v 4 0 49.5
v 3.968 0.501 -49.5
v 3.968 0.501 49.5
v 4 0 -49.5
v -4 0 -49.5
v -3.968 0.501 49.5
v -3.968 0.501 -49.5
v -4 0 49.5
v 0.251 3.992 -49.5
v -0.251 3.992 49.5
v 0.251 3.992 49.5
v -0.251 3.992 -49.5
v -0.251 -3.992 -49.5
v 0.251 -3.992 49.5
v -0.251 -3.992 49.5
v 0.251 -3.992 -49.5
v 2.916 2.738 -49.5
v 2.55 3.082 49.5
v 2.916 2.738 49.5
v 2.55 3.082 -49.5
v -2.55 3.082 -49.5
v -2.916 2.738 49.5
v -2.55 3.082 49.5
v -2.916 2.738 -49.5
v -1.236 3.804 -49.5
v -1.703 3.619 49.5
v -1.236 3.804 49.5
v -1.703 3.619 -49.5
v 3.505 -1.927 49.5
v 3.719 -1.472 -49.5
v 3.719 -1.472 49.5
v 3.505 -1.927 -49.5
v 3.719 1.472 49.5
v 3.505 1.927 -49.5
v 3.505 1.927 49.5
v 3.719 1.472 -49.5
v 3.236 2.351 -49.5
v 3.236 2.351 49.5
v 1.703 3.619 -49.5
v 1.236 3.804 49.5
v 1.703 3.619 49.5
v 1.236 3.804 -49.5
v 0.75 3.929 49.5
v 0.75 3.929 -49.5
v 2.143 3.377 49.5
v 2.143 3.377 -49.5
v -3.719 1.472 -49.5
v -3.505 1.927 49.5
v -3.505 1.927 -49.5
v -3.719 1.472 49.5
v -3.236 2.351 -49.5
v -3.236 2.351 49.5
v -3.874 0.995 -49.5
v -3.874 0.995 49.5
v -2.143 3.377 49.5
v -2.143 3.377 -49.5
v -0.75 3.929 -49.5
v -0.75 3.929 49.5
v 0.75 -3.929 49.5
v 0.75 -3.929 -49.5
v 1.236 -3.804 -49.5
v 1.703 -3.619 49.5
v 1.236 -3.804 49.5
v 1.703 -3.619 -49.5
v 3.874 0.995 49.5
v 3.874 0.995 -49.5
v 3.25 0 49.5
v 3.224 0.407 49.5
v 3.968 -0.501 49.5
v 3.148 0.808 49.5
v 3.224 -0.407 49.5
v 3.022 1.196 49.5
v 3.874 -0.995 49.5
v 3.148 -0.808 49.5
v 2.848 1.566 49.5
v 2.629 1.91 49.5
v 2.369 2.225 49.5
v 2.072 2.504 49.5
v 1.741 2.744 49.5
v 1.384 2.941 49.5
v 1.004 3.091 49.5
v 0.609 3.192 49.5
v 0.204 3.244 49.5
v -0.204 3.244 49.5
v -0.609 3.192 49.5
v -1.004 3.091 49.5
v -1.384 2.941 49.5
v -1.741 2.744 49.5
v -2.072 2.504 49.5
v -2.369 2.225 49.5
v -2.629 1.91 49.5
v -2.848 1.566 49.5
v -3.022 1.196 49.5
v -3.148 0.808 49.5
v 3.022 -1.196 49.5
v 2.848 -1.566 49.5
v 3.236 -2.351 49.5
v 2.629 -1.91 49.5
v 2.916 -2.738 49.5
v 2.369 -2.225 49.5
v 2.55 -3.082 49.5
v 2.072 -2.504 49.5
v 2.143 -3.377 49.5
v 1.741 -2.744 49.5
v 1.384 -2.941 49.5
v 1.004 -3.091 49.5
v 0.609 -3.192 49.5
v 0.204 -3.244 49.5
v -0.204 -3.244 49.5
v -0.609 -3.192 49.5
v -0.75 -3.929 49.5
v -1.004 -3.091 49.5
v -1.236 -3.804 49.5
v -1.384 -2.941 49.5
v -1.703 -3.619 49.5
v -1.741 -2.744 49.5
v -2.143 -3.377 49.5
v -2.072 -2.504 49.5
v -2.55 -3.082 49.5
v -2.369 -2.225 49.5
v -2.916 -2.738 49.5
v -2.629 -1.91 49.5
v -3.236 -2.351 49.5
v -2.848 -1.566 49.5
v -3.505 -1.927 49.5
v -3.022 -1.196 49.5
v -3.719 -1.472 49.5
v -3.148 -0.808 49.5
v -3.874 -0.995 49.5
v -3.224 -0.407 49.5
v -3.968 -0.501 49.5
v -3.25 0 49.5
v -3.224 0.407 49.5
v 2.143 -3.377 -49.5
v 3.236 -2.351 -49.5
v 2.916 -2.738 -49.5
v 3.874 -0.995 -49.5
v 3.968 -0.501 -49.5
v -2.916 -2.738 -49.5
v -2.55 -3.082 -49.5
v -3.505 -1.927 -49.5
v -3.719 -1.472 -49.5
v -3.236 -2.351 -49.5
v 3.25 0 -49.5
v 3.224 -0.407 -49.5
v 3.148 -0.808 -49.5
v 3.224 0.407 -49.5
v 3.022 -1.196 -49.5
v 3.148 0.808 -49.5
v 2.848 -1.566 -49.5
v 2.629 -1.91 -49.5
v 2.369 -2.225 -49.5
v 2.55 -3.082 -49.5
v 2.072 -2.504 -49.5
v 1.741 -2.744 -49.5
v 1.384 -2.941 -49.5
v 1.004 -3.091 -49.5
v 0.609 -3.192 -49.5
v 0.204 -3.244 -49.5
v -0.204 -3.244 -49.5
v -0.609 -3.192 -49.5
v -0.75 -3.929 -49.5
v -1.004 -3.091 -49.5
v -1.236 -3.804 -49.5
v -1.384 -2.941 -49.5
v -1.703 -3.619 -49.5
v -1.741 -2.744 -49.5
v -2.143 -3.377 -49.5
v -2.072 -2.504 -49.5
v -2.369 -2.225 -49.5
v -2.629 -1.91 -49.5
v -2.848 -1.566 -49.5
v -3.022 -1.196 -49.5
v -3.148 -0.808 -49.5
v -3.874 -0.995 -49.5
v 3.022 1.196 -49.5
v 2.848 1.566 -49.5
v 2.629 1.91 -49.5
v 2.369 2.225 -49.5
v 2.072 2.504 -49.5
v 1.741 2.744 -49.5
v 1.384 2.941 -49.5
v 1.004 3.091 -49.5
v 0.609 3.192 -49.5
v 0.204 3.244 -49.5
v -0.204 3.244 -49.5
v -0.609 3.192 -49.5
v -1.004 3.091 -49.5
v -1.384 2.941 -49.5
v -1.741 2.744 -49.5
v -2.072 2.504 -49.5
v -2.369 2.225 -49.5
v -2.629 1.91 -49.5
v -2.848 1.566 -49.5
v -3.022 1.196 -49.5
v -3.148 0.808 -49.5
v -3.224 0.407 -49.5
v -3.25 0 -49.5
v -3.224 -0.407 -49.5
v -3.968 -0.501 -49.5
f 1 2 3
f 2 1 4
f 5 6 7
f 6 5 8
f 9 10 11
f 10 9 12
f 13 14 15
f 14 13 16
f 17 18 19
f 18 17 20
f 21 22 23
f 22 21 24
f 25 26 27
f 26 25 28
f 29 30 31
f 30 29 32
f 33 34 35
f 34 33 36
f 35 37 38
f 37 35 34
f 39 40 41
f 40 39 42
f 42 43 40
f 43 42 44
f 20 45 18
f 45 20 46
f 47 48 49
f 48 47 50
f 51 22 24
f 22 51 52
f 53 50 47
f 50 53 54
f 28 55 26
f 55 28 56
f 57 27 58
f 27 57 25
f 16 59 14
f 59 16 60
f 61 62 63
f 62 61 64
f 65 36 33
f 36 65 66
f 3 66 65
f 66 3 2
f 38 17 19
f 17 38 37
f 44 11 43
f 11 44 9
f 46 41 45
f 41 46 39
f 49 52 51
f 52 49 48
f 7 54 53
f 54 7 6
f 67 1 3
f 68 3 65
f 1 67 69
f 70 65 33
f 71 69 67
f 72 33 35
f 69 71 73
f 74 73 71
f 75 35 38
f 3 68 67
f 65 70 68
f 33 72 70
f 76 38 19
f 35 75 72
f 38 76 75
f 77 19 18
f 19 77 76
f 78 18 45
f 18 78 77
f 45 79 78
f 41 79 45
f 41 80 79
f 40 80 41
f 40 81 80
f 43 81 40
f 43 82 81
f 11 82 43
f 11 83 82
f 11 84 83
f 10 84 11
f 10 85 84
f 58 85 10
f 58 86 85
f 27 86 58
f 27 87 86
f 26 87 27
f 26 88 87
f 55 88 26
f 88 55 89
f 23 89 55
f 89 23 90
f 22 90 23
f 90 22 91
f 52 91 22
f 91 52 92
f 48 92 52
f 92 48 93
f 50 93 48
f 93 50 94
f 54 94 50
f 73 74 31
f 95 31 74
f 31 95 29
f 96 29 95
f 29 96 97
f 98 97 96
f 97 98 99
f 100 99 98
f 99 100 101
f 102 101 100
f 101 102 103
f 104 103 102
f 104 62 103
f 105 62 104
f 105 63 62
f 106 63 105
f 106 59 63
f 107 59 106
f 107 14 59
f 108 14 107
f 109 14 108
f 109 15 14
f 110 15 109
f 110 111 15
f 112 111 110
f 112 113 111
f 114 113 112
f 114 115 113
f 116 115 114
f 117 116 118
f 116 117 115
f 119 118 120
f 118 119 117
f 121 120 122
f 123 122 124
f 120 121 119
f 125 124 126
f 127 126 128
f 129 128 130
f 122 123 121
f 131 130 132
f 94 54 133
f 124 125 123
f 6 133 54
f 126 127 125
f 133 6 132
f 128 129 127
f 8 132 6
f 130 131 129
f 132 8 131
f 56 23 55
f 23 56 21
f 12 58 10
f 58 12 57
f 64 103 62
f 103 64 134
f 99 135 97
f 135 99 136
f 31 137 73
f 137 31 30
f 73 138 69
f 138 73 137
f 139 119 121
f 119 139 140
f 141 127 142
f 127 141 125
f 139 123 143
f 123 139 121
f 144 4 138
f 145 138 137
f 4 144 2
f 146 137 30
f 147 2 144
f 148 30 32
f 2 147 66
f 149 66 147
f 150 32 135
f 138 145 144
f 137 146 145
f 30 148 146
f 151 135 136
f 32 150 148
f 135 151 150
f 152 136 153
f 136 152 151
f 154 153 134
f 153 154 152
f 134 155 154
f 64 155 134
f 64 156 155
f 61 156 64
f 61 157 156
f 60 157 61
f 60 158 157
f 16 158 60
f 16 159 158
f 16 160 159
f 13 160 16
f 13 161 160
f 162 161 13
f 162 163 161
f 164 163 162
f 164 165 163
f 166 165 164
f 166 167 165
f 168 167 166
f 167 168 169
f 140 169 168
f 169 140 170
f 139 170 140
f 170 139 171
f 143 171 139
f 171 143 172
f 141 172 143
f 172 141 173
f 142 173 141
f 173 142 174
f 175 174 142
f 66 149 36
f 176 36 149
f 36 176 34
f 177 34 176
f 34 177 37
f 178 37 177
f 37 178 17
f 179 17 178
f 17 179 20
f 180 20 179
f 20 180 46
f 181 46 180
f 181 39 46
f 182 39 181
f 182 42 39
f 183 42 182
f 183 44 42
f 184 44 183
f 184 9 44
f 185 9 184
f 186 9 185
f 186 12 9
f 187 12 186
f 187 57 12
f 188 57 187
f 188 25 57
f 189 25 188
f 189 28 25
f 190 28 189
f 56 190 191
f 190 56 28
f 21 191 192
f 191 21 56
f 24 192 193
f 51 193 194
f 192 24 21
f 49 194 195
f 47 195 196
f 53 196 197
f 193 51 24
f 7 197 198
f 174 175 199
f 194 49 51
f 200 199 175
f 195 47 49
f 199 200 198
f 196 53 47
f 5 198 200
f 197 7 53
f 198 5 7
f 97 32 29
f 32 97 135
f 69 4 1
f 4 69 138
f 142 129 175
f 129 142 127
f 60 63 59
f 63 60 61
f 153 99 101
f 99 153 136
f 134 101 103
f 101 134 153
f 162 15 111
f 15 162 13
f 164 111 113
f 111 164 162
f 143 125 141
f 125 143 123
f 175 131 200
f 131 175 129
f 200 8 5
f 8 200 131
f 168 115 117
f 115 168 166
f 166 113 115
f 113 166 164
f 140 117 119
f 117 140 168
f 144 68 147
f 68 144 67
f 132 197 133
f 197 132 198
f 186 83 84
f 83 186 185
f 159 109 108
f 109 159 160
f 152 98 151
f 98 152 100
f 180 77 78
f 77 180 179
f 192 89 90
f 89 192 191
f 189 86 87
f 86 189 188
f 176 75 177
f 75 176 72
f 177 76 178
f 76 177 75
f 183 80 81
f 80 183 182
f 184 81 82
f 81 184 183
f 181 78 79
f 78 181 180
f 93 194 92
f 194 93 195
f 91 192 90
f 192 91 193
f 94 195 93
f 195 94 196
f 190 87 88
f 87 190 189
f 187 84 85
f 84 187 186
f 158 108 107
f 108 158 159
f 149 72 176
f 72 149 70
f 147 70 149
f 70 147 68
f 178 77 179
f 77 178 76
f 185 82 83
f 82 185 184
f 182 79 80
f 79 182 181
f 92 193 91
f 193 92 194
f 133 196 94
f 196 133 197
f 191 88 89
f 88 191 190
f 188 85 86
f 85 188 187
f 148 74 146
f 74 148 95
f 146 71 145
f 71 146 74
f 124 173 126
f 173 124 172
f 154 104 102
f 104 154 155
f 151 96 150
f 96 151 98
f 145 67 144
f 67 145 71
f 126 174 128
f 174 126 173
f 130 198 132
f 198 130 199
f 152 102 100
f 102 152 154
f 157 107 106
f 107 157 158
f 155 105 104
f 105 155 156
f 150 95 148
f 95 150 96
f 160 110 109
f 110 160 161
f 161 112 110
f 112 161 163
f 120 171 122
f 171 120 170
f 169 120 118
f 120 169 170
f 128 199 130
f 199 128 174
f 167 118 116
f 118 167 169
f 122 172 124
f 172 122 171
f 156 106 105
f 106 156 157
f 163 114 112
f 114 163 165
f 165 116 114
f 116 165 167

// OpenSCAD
$fn = 50;


difference() {
	union() {
		translate(v = [0, 0, -49.5000000000]) {
			cylinder(h = 99, r = 4.0000000000);
		}
	}
	union() {
		translate(v = [0, 0, -100.0000000000]) {
			cylinder(h = 200, r = 3.2500000000);
		}
	}
}
